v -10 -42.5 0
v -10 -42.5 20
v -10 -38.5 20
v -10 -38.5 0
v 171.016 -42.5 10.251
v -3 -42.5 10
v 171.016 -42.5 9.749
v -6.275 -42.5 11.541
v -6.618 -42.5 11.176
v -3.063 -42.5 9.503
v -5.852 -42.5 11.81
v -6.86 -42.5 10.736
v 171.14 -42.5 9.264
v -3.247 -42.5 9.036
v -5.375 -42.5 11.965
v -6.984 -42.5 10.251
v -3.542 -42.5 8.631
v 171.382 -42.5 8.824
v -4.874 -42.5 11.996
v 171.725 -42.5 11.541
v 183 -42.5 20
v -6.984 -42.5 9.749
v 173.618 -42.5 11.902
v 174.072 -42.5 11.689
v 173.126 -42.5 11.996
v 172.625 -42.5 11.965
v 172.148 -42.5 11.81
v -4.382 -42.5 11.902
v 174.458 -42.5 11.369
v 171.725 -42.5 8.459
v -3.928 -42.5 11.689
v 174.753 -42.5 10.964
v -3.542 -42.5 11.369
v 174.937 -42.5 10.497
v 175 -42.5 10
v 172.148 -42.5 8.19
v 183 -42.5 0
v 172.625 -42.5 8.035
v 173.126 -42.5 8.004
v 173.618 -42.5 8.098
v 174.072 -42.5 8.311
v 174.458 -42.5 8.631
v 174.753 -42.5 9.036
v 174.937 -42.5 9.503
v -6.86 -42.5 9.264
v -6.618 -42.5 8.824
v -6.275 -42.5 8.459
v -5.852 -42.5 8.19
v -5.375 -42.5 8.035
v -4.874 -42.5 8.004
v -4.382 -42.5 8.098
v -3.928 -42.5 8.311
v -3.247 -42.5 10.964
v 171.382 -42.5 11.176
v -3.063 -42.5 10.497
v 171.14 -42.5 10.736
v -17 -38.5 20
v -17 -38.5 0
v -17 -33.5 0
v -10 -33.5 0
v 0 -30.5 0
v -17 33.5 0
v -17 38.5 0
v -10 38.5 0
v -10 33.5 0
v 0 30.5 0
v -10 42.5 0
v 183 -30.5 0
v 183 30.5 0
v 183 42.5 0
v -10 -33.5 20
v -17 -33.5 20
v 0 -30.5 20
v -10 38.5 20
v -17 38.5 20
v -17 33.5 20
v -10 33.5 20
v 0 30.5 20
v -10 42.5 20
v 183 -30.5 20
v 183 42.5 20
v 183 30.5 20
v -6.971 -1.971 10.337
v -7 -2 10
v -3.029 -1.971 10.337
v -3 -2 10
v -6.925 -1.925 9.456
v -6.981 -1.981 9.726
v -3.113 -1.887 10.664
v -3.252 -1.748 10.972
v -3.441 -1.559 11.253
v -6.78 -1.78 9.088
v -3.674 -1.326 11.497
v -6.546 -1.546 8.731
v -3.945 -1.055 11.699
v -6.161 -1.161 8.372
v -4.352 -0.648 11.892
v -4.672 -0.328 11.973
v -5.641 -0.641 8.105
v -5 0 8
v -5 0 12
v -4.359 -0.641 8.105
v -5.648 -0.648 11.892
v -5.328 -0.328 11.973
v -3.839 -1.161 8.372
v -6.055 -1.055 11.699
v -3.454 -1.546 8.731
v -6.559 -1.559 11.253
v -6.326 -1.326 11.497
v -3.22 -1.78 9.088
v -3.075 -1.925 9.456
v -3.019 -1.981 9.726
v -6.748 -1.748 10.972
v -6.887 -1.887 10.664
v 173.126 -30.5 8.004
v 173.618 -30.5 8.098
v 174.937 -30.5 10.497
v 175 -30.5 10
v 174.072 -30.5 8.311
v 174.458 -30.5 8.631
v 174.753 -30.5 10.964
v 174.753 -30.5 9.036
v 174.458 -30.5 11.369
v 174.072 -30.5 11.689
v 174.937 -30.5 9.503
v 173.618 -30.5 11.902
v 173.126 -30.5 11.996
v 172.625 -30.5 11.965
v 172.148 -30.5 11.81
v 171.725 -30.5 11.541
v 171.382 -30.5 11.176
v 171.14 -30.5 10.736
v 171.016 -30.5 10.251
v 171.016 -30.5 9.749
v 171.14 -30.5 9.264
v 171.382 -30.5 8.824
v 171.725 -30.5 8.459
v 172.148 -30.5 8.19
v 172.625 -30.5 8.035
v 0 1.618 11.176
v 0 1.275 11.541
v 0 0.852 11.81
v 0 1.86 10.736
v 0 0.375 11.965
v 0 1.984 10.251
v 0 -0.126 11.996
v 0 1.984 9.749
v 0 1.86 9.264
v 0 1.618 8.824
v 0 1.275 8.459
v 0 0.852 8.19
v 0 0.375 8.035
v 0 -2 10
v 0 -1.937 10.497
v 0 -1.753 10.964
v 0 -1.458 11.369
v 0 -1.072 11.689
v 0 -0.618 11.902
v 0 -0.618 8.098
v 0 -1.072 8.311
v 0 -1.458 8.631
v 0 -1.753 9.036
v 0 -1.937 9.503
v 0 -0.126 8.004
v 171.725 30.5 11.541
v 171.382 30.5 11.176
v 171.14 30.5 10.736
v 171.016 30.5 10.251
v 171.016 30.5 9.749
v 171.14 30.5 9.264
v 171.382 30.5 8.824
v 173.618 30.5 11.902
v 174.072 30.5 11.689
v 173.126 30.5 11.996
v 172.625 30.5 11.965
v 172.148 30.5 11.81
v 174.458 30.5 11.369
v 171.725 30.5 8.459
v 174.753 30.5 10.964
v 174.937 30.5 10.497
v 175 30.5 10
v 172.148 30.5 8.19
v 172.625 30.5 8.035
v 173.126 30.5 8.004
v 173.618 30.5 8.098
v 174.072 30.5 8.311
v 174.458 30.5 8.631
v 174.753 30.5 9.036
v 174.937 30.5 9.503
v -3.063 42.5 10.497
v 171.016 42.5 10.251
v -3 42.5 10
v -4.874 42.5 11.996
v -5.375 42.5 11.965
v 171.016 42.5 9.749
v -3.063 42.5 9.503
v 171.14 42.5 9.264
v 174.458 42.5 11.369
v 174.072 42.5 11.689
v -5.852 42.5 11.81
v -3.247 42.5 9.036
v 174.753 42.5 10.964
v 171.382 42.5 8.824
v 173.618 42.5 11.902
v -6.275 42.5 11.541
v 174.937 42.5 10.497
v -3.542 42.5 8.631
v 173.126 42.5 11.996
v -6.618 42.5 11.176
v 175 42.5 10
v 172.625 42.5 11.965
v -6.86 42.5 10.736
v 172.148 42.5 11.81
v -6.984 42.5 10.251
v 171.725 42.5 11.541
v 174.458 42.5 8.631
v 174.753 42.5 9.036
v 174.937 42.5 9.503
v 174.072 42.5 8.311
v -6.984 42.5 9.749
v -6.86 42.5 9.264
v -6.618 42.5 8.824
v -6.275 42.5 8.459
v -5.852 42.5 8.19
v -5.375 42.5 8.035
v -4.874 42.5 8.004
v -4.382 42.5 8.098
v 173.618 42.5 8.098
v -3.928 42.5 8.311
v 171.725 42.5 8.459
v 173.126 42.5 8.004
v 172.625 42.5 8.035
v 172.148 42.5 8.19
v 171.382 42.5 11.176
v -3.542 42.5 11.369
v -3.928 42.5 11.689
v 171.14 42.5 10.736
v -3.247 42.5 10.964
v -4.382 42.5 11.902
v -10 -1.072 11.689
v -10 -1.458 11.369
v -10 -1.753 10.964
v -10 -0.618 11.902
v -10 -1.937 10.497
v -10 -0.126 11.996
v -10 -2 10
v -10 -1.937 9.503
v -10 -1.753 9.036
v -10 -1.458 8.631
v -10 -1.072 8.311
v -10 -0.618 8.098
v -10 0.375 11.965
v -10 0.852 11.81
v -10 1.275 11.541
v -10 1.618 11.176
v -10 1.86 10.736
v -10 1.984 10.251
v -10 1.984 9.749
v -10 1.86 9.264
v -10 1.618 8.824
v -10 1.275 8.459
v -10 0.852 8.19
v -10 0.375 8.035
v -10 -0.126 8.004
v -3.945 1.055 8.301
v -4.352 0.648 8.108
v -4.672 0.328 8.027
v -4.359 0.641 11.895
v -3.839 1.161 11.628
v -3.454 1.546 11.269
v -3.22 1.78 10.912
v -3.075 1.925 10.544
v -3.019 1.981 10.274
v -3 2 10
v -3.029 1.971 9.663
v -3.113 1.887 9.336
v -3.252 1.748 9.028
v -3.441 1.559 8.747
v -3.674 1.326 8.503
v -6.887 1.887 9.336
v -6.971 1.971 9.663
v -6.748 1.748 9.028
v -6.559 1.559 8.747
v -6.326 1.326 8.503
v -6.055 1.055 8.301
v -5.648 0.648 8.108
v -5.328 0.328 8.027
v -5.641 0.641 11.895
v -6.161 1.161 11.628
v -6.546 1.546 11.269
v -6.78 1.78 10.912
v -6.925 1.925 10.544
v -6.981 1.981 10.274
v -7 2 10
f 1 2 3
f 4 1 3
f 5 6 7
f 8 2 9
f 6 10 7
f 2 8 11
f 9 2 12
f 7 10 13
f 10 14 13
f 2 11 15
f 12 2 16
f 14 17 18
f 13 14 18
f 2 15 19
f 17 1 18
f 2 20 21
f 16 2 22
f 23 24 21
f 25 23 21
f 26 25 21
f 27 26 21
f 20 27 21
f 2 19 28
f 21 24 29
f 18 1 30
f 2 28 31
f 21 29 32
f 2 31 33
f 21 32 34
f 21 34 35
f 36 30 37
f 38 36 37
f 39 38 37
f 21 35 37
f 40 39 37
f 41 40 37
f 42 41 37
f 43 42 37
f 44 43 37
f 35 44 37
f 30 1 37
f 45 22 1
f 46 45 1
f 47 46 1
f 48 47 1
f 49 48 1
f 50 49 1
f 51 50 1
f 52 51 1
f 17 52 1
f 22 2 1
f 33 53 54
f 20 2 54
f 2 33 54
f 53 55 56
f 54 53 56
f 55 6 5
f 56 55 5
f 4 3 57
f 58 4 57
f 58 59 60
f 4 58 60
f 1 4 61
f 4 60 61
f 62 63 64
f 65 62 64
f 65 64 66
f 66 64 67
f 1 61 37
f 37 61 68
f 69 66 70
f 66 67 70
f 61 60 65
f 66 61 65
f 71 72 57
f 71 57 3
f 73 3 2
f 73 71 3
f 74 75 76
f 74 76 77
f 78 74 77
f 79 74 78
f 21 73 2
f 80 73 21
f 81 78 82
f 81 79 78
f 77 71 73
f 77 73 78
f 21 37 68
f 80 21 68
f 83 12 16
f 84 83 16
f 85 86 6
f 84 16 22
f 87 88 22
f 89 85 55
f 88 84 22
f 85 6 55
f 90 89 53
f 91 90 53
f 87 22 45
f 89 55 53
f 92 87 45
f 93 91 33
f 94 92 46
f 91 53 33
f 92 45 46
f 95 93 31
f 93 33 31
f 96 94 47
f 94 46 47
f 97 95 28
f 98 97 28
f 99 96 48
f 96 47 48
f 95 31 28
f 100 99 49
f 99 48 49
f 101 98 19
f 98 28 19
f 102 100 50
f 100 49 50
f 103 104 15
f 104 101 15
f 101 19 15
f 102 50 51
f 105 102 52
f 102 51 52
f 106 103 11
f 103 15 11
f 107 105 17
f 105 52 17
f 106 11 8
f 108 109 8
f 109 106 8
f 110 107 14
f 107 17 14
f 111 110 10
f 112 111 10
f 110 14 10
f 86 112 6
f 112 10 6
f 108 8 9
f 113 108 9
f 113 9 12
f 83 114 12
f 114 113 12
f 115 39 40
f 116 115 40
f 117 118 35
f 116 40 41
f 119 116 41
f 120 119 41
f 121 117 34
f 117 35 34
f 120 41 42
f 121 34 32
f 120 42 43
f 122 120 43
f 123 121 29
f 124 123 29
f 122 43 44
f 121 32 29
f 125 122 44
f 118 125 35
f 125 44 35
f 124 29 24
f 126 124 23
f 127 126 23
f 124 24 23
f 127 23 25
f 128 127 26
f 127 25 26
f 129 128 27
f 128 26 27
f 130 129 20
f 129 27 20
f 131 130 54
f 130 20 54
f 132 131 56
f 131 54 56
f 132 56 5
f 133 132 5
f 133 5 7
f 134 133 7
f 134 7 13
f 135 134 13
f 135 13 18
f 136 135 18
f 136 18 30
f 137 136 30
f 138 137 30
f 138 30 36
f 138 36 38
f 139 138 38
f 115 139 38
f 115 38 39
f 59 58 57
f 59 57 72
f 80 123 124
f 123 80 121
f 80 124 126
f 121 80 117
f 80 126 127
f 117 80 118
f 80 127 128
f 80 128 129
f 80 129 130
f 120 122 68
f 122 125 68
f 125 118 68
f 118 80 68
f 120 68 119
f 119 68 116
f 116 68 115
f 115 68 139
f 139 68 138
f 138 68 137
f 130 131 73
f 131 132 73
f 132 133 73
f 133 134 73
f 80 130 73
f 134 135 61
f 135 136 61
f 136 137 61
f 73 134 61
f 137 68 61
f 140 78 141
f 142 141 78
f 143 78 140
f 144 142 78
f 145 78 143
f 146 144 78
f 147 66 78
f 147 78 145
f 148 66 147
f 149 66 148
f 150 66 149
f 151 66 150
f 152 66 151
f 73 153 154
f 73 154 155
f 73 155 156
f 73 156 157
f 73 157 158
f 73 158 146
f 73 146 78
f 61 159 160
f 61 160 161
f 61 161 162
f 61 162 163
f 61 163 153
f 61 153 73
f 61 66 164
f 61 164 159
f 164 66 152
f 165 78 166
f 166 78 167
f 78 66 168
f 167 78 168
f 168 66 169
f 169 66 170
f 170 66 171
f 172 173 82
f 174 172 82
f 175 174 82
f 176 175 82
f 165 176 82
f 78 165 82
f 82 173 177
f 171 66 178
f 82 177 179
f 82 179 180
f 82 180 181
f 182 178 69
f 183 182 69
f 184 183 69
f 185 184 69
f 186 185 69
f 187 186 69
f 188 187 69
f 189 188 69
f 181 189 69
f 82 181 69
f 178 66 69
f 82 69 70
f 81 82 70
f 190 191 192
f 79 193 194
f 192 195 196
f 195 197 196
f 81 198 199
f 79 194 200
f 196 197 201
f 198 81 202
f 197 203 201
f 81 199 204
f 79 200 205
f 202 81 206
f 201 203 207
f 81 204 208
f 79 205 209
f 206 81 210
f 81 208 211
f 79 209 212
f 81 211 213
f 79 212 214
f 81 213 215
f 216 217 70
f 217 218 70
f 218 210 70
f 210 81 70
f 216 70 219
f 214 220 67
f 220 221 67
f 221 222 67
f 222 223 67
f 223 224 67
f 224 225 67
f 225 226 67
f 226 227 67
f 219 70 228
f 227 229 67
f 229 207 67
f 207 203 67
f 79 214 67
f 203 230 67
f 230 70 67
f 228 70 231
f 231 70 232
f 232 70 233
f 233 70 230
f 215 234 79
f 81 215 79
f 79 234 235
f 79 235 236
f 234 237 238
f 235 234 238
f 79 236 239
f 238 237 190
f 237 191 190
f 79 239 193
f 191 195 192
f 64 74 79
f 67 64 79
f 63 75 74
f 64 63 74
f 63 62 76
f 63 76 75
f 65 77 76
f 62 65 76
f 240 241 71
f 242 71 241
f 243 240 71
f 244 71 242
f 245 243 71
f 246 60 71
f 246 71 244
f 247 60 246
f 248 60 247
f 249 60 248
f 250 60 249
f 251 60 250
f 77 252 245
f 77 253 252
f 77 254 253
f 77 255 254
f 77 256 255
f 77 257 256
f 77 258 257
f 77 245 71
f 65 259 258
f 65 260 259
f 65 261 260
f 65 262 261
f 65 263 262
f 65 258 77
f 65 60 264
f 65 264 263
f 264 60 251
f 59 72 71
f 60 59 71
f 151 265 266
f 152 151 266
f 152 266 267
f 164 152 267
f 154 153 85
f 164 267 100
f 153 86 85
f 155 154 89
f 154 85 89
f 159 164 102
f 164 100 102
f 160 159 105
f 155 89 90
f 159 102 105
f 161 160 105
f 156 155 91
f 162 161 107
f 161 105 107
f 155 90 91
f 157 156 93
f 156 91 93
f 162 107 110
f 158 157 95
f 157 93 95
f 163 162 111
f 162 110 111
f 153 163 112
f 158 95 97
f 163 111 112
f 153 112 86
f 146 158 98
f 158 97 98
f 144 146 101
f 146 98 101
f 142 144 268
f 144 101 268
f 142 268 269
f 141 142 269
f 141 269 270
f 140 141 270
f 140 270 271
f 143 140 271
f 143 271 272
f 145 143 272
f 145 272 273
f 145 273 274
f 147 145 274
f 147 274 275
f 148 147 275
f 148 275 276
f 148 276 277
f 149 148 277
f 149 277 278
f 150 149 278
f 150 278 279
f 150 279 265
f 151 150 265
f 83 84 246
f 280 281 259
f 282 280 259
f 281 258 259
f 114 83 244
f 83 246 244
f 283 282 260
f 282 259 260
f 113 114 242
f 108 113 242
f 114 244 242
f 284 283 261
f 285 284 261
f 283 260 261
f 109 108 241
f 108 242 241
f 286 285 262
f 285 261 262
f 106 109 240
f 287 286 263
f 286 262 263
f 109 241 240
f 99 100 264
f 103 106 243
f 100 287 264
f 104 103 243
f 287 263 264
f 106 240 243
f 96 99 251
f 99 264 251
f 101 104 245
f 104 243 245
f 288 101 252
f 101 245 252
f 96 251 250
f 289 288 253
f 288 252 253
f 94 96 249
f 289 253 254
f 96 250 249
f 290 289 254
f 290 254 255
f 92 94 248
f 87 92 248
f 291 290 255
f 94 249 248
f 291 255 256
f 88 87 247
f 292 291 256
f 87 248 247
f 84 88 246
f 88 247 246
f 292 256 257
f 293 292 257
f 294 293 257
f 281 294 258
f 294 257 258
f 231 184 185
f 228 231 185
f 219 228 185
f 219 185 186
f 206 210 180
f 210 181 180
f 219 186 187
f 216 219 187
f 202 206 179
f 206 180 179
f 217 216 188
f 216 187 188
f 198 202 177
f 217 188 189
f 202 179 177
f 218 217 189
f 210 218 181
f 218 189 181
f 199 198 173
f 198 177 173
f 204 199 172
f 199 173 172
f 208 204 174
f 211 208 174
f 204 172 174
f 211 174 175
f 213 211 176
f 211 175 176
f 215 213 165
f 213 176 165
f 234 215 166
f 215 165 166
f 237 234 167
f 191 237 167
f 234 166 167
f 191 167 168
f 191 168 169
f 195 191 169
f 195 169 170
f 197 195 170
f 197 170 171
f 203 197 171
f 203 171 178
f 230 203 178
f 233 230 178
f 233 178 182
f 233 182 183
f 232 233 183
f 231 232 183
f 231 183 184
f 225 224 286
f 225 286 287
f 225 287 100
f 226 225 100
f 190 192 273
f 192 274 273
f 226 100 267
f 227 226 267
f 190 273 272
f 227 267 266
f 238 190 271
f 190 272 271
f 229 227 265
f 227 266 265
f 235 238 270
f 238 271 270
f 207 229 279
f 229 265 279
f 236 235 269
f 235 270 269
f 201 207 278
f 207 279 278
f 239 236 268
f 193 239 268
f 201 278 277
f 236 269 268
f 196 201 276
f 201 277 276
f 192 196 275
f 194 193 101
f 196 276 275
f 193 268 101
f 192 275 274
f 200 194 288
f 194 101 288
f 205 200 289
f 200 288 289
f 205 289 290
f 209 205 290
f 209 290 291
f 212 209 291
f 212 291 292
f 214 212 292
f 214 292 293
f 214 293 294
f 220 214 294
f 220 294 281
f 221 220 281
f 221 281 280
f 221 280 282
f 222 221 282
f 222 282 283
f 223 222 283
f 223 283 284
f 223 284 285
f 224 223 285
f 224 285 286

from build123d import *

# Parameters (mm, degrees)
PAD_DEPTH       = 20
SKETCH004_R     = 2
POCKET002_DEPTH = 193.001
SKETCH005_R     = 2
POCKET003_DEPTH = 85.001


with BuildPart() as part:
    # Sketch → Pad (new body)
    with BuildSketch(Plane.XY):
        Polygon((-10, -42.5), (183, -42.5), (183, -30.5), (0, -30.5), (0, 30.5), (183, 30.5), (183, 42.5), (-10, 42.5), (-10, 38.5), (-17, 38.5), (-17, 33.5), (-10, 33.5), (-10, -33.5), (-17, -33.5), (-17, -38.5), (-10, -38.5), align=None)
    extrude(amount=PAD_DEPTH)

    # Sketch004 → Pocket002 (cut, through all)
    with BuildSketch(Plane(origin=(-10, 0, 0), x_dir=(0, -1, 0), z_dir=(-1, 0, 0))):
        with Locations((0, 10)):
            Circle(SKETCH004_R)
    extrude(amount=-POCKET002_DEPTH, mode=Mode.SUBTRACT)

    # Sketch005 → Pocket003 (cut, through all)
    with BuildSketch(Plane.XZ.offset(42.5)):
        with Locations((-5, 10)):
            Circle(SKETCH005_R)
        with Locations((173, 10)):
            Circle(SKETCH005_R)
    extrude(amount=-POCKET003_DEPTH, mode=Mode.SUBTRACT)


solid = part.part
